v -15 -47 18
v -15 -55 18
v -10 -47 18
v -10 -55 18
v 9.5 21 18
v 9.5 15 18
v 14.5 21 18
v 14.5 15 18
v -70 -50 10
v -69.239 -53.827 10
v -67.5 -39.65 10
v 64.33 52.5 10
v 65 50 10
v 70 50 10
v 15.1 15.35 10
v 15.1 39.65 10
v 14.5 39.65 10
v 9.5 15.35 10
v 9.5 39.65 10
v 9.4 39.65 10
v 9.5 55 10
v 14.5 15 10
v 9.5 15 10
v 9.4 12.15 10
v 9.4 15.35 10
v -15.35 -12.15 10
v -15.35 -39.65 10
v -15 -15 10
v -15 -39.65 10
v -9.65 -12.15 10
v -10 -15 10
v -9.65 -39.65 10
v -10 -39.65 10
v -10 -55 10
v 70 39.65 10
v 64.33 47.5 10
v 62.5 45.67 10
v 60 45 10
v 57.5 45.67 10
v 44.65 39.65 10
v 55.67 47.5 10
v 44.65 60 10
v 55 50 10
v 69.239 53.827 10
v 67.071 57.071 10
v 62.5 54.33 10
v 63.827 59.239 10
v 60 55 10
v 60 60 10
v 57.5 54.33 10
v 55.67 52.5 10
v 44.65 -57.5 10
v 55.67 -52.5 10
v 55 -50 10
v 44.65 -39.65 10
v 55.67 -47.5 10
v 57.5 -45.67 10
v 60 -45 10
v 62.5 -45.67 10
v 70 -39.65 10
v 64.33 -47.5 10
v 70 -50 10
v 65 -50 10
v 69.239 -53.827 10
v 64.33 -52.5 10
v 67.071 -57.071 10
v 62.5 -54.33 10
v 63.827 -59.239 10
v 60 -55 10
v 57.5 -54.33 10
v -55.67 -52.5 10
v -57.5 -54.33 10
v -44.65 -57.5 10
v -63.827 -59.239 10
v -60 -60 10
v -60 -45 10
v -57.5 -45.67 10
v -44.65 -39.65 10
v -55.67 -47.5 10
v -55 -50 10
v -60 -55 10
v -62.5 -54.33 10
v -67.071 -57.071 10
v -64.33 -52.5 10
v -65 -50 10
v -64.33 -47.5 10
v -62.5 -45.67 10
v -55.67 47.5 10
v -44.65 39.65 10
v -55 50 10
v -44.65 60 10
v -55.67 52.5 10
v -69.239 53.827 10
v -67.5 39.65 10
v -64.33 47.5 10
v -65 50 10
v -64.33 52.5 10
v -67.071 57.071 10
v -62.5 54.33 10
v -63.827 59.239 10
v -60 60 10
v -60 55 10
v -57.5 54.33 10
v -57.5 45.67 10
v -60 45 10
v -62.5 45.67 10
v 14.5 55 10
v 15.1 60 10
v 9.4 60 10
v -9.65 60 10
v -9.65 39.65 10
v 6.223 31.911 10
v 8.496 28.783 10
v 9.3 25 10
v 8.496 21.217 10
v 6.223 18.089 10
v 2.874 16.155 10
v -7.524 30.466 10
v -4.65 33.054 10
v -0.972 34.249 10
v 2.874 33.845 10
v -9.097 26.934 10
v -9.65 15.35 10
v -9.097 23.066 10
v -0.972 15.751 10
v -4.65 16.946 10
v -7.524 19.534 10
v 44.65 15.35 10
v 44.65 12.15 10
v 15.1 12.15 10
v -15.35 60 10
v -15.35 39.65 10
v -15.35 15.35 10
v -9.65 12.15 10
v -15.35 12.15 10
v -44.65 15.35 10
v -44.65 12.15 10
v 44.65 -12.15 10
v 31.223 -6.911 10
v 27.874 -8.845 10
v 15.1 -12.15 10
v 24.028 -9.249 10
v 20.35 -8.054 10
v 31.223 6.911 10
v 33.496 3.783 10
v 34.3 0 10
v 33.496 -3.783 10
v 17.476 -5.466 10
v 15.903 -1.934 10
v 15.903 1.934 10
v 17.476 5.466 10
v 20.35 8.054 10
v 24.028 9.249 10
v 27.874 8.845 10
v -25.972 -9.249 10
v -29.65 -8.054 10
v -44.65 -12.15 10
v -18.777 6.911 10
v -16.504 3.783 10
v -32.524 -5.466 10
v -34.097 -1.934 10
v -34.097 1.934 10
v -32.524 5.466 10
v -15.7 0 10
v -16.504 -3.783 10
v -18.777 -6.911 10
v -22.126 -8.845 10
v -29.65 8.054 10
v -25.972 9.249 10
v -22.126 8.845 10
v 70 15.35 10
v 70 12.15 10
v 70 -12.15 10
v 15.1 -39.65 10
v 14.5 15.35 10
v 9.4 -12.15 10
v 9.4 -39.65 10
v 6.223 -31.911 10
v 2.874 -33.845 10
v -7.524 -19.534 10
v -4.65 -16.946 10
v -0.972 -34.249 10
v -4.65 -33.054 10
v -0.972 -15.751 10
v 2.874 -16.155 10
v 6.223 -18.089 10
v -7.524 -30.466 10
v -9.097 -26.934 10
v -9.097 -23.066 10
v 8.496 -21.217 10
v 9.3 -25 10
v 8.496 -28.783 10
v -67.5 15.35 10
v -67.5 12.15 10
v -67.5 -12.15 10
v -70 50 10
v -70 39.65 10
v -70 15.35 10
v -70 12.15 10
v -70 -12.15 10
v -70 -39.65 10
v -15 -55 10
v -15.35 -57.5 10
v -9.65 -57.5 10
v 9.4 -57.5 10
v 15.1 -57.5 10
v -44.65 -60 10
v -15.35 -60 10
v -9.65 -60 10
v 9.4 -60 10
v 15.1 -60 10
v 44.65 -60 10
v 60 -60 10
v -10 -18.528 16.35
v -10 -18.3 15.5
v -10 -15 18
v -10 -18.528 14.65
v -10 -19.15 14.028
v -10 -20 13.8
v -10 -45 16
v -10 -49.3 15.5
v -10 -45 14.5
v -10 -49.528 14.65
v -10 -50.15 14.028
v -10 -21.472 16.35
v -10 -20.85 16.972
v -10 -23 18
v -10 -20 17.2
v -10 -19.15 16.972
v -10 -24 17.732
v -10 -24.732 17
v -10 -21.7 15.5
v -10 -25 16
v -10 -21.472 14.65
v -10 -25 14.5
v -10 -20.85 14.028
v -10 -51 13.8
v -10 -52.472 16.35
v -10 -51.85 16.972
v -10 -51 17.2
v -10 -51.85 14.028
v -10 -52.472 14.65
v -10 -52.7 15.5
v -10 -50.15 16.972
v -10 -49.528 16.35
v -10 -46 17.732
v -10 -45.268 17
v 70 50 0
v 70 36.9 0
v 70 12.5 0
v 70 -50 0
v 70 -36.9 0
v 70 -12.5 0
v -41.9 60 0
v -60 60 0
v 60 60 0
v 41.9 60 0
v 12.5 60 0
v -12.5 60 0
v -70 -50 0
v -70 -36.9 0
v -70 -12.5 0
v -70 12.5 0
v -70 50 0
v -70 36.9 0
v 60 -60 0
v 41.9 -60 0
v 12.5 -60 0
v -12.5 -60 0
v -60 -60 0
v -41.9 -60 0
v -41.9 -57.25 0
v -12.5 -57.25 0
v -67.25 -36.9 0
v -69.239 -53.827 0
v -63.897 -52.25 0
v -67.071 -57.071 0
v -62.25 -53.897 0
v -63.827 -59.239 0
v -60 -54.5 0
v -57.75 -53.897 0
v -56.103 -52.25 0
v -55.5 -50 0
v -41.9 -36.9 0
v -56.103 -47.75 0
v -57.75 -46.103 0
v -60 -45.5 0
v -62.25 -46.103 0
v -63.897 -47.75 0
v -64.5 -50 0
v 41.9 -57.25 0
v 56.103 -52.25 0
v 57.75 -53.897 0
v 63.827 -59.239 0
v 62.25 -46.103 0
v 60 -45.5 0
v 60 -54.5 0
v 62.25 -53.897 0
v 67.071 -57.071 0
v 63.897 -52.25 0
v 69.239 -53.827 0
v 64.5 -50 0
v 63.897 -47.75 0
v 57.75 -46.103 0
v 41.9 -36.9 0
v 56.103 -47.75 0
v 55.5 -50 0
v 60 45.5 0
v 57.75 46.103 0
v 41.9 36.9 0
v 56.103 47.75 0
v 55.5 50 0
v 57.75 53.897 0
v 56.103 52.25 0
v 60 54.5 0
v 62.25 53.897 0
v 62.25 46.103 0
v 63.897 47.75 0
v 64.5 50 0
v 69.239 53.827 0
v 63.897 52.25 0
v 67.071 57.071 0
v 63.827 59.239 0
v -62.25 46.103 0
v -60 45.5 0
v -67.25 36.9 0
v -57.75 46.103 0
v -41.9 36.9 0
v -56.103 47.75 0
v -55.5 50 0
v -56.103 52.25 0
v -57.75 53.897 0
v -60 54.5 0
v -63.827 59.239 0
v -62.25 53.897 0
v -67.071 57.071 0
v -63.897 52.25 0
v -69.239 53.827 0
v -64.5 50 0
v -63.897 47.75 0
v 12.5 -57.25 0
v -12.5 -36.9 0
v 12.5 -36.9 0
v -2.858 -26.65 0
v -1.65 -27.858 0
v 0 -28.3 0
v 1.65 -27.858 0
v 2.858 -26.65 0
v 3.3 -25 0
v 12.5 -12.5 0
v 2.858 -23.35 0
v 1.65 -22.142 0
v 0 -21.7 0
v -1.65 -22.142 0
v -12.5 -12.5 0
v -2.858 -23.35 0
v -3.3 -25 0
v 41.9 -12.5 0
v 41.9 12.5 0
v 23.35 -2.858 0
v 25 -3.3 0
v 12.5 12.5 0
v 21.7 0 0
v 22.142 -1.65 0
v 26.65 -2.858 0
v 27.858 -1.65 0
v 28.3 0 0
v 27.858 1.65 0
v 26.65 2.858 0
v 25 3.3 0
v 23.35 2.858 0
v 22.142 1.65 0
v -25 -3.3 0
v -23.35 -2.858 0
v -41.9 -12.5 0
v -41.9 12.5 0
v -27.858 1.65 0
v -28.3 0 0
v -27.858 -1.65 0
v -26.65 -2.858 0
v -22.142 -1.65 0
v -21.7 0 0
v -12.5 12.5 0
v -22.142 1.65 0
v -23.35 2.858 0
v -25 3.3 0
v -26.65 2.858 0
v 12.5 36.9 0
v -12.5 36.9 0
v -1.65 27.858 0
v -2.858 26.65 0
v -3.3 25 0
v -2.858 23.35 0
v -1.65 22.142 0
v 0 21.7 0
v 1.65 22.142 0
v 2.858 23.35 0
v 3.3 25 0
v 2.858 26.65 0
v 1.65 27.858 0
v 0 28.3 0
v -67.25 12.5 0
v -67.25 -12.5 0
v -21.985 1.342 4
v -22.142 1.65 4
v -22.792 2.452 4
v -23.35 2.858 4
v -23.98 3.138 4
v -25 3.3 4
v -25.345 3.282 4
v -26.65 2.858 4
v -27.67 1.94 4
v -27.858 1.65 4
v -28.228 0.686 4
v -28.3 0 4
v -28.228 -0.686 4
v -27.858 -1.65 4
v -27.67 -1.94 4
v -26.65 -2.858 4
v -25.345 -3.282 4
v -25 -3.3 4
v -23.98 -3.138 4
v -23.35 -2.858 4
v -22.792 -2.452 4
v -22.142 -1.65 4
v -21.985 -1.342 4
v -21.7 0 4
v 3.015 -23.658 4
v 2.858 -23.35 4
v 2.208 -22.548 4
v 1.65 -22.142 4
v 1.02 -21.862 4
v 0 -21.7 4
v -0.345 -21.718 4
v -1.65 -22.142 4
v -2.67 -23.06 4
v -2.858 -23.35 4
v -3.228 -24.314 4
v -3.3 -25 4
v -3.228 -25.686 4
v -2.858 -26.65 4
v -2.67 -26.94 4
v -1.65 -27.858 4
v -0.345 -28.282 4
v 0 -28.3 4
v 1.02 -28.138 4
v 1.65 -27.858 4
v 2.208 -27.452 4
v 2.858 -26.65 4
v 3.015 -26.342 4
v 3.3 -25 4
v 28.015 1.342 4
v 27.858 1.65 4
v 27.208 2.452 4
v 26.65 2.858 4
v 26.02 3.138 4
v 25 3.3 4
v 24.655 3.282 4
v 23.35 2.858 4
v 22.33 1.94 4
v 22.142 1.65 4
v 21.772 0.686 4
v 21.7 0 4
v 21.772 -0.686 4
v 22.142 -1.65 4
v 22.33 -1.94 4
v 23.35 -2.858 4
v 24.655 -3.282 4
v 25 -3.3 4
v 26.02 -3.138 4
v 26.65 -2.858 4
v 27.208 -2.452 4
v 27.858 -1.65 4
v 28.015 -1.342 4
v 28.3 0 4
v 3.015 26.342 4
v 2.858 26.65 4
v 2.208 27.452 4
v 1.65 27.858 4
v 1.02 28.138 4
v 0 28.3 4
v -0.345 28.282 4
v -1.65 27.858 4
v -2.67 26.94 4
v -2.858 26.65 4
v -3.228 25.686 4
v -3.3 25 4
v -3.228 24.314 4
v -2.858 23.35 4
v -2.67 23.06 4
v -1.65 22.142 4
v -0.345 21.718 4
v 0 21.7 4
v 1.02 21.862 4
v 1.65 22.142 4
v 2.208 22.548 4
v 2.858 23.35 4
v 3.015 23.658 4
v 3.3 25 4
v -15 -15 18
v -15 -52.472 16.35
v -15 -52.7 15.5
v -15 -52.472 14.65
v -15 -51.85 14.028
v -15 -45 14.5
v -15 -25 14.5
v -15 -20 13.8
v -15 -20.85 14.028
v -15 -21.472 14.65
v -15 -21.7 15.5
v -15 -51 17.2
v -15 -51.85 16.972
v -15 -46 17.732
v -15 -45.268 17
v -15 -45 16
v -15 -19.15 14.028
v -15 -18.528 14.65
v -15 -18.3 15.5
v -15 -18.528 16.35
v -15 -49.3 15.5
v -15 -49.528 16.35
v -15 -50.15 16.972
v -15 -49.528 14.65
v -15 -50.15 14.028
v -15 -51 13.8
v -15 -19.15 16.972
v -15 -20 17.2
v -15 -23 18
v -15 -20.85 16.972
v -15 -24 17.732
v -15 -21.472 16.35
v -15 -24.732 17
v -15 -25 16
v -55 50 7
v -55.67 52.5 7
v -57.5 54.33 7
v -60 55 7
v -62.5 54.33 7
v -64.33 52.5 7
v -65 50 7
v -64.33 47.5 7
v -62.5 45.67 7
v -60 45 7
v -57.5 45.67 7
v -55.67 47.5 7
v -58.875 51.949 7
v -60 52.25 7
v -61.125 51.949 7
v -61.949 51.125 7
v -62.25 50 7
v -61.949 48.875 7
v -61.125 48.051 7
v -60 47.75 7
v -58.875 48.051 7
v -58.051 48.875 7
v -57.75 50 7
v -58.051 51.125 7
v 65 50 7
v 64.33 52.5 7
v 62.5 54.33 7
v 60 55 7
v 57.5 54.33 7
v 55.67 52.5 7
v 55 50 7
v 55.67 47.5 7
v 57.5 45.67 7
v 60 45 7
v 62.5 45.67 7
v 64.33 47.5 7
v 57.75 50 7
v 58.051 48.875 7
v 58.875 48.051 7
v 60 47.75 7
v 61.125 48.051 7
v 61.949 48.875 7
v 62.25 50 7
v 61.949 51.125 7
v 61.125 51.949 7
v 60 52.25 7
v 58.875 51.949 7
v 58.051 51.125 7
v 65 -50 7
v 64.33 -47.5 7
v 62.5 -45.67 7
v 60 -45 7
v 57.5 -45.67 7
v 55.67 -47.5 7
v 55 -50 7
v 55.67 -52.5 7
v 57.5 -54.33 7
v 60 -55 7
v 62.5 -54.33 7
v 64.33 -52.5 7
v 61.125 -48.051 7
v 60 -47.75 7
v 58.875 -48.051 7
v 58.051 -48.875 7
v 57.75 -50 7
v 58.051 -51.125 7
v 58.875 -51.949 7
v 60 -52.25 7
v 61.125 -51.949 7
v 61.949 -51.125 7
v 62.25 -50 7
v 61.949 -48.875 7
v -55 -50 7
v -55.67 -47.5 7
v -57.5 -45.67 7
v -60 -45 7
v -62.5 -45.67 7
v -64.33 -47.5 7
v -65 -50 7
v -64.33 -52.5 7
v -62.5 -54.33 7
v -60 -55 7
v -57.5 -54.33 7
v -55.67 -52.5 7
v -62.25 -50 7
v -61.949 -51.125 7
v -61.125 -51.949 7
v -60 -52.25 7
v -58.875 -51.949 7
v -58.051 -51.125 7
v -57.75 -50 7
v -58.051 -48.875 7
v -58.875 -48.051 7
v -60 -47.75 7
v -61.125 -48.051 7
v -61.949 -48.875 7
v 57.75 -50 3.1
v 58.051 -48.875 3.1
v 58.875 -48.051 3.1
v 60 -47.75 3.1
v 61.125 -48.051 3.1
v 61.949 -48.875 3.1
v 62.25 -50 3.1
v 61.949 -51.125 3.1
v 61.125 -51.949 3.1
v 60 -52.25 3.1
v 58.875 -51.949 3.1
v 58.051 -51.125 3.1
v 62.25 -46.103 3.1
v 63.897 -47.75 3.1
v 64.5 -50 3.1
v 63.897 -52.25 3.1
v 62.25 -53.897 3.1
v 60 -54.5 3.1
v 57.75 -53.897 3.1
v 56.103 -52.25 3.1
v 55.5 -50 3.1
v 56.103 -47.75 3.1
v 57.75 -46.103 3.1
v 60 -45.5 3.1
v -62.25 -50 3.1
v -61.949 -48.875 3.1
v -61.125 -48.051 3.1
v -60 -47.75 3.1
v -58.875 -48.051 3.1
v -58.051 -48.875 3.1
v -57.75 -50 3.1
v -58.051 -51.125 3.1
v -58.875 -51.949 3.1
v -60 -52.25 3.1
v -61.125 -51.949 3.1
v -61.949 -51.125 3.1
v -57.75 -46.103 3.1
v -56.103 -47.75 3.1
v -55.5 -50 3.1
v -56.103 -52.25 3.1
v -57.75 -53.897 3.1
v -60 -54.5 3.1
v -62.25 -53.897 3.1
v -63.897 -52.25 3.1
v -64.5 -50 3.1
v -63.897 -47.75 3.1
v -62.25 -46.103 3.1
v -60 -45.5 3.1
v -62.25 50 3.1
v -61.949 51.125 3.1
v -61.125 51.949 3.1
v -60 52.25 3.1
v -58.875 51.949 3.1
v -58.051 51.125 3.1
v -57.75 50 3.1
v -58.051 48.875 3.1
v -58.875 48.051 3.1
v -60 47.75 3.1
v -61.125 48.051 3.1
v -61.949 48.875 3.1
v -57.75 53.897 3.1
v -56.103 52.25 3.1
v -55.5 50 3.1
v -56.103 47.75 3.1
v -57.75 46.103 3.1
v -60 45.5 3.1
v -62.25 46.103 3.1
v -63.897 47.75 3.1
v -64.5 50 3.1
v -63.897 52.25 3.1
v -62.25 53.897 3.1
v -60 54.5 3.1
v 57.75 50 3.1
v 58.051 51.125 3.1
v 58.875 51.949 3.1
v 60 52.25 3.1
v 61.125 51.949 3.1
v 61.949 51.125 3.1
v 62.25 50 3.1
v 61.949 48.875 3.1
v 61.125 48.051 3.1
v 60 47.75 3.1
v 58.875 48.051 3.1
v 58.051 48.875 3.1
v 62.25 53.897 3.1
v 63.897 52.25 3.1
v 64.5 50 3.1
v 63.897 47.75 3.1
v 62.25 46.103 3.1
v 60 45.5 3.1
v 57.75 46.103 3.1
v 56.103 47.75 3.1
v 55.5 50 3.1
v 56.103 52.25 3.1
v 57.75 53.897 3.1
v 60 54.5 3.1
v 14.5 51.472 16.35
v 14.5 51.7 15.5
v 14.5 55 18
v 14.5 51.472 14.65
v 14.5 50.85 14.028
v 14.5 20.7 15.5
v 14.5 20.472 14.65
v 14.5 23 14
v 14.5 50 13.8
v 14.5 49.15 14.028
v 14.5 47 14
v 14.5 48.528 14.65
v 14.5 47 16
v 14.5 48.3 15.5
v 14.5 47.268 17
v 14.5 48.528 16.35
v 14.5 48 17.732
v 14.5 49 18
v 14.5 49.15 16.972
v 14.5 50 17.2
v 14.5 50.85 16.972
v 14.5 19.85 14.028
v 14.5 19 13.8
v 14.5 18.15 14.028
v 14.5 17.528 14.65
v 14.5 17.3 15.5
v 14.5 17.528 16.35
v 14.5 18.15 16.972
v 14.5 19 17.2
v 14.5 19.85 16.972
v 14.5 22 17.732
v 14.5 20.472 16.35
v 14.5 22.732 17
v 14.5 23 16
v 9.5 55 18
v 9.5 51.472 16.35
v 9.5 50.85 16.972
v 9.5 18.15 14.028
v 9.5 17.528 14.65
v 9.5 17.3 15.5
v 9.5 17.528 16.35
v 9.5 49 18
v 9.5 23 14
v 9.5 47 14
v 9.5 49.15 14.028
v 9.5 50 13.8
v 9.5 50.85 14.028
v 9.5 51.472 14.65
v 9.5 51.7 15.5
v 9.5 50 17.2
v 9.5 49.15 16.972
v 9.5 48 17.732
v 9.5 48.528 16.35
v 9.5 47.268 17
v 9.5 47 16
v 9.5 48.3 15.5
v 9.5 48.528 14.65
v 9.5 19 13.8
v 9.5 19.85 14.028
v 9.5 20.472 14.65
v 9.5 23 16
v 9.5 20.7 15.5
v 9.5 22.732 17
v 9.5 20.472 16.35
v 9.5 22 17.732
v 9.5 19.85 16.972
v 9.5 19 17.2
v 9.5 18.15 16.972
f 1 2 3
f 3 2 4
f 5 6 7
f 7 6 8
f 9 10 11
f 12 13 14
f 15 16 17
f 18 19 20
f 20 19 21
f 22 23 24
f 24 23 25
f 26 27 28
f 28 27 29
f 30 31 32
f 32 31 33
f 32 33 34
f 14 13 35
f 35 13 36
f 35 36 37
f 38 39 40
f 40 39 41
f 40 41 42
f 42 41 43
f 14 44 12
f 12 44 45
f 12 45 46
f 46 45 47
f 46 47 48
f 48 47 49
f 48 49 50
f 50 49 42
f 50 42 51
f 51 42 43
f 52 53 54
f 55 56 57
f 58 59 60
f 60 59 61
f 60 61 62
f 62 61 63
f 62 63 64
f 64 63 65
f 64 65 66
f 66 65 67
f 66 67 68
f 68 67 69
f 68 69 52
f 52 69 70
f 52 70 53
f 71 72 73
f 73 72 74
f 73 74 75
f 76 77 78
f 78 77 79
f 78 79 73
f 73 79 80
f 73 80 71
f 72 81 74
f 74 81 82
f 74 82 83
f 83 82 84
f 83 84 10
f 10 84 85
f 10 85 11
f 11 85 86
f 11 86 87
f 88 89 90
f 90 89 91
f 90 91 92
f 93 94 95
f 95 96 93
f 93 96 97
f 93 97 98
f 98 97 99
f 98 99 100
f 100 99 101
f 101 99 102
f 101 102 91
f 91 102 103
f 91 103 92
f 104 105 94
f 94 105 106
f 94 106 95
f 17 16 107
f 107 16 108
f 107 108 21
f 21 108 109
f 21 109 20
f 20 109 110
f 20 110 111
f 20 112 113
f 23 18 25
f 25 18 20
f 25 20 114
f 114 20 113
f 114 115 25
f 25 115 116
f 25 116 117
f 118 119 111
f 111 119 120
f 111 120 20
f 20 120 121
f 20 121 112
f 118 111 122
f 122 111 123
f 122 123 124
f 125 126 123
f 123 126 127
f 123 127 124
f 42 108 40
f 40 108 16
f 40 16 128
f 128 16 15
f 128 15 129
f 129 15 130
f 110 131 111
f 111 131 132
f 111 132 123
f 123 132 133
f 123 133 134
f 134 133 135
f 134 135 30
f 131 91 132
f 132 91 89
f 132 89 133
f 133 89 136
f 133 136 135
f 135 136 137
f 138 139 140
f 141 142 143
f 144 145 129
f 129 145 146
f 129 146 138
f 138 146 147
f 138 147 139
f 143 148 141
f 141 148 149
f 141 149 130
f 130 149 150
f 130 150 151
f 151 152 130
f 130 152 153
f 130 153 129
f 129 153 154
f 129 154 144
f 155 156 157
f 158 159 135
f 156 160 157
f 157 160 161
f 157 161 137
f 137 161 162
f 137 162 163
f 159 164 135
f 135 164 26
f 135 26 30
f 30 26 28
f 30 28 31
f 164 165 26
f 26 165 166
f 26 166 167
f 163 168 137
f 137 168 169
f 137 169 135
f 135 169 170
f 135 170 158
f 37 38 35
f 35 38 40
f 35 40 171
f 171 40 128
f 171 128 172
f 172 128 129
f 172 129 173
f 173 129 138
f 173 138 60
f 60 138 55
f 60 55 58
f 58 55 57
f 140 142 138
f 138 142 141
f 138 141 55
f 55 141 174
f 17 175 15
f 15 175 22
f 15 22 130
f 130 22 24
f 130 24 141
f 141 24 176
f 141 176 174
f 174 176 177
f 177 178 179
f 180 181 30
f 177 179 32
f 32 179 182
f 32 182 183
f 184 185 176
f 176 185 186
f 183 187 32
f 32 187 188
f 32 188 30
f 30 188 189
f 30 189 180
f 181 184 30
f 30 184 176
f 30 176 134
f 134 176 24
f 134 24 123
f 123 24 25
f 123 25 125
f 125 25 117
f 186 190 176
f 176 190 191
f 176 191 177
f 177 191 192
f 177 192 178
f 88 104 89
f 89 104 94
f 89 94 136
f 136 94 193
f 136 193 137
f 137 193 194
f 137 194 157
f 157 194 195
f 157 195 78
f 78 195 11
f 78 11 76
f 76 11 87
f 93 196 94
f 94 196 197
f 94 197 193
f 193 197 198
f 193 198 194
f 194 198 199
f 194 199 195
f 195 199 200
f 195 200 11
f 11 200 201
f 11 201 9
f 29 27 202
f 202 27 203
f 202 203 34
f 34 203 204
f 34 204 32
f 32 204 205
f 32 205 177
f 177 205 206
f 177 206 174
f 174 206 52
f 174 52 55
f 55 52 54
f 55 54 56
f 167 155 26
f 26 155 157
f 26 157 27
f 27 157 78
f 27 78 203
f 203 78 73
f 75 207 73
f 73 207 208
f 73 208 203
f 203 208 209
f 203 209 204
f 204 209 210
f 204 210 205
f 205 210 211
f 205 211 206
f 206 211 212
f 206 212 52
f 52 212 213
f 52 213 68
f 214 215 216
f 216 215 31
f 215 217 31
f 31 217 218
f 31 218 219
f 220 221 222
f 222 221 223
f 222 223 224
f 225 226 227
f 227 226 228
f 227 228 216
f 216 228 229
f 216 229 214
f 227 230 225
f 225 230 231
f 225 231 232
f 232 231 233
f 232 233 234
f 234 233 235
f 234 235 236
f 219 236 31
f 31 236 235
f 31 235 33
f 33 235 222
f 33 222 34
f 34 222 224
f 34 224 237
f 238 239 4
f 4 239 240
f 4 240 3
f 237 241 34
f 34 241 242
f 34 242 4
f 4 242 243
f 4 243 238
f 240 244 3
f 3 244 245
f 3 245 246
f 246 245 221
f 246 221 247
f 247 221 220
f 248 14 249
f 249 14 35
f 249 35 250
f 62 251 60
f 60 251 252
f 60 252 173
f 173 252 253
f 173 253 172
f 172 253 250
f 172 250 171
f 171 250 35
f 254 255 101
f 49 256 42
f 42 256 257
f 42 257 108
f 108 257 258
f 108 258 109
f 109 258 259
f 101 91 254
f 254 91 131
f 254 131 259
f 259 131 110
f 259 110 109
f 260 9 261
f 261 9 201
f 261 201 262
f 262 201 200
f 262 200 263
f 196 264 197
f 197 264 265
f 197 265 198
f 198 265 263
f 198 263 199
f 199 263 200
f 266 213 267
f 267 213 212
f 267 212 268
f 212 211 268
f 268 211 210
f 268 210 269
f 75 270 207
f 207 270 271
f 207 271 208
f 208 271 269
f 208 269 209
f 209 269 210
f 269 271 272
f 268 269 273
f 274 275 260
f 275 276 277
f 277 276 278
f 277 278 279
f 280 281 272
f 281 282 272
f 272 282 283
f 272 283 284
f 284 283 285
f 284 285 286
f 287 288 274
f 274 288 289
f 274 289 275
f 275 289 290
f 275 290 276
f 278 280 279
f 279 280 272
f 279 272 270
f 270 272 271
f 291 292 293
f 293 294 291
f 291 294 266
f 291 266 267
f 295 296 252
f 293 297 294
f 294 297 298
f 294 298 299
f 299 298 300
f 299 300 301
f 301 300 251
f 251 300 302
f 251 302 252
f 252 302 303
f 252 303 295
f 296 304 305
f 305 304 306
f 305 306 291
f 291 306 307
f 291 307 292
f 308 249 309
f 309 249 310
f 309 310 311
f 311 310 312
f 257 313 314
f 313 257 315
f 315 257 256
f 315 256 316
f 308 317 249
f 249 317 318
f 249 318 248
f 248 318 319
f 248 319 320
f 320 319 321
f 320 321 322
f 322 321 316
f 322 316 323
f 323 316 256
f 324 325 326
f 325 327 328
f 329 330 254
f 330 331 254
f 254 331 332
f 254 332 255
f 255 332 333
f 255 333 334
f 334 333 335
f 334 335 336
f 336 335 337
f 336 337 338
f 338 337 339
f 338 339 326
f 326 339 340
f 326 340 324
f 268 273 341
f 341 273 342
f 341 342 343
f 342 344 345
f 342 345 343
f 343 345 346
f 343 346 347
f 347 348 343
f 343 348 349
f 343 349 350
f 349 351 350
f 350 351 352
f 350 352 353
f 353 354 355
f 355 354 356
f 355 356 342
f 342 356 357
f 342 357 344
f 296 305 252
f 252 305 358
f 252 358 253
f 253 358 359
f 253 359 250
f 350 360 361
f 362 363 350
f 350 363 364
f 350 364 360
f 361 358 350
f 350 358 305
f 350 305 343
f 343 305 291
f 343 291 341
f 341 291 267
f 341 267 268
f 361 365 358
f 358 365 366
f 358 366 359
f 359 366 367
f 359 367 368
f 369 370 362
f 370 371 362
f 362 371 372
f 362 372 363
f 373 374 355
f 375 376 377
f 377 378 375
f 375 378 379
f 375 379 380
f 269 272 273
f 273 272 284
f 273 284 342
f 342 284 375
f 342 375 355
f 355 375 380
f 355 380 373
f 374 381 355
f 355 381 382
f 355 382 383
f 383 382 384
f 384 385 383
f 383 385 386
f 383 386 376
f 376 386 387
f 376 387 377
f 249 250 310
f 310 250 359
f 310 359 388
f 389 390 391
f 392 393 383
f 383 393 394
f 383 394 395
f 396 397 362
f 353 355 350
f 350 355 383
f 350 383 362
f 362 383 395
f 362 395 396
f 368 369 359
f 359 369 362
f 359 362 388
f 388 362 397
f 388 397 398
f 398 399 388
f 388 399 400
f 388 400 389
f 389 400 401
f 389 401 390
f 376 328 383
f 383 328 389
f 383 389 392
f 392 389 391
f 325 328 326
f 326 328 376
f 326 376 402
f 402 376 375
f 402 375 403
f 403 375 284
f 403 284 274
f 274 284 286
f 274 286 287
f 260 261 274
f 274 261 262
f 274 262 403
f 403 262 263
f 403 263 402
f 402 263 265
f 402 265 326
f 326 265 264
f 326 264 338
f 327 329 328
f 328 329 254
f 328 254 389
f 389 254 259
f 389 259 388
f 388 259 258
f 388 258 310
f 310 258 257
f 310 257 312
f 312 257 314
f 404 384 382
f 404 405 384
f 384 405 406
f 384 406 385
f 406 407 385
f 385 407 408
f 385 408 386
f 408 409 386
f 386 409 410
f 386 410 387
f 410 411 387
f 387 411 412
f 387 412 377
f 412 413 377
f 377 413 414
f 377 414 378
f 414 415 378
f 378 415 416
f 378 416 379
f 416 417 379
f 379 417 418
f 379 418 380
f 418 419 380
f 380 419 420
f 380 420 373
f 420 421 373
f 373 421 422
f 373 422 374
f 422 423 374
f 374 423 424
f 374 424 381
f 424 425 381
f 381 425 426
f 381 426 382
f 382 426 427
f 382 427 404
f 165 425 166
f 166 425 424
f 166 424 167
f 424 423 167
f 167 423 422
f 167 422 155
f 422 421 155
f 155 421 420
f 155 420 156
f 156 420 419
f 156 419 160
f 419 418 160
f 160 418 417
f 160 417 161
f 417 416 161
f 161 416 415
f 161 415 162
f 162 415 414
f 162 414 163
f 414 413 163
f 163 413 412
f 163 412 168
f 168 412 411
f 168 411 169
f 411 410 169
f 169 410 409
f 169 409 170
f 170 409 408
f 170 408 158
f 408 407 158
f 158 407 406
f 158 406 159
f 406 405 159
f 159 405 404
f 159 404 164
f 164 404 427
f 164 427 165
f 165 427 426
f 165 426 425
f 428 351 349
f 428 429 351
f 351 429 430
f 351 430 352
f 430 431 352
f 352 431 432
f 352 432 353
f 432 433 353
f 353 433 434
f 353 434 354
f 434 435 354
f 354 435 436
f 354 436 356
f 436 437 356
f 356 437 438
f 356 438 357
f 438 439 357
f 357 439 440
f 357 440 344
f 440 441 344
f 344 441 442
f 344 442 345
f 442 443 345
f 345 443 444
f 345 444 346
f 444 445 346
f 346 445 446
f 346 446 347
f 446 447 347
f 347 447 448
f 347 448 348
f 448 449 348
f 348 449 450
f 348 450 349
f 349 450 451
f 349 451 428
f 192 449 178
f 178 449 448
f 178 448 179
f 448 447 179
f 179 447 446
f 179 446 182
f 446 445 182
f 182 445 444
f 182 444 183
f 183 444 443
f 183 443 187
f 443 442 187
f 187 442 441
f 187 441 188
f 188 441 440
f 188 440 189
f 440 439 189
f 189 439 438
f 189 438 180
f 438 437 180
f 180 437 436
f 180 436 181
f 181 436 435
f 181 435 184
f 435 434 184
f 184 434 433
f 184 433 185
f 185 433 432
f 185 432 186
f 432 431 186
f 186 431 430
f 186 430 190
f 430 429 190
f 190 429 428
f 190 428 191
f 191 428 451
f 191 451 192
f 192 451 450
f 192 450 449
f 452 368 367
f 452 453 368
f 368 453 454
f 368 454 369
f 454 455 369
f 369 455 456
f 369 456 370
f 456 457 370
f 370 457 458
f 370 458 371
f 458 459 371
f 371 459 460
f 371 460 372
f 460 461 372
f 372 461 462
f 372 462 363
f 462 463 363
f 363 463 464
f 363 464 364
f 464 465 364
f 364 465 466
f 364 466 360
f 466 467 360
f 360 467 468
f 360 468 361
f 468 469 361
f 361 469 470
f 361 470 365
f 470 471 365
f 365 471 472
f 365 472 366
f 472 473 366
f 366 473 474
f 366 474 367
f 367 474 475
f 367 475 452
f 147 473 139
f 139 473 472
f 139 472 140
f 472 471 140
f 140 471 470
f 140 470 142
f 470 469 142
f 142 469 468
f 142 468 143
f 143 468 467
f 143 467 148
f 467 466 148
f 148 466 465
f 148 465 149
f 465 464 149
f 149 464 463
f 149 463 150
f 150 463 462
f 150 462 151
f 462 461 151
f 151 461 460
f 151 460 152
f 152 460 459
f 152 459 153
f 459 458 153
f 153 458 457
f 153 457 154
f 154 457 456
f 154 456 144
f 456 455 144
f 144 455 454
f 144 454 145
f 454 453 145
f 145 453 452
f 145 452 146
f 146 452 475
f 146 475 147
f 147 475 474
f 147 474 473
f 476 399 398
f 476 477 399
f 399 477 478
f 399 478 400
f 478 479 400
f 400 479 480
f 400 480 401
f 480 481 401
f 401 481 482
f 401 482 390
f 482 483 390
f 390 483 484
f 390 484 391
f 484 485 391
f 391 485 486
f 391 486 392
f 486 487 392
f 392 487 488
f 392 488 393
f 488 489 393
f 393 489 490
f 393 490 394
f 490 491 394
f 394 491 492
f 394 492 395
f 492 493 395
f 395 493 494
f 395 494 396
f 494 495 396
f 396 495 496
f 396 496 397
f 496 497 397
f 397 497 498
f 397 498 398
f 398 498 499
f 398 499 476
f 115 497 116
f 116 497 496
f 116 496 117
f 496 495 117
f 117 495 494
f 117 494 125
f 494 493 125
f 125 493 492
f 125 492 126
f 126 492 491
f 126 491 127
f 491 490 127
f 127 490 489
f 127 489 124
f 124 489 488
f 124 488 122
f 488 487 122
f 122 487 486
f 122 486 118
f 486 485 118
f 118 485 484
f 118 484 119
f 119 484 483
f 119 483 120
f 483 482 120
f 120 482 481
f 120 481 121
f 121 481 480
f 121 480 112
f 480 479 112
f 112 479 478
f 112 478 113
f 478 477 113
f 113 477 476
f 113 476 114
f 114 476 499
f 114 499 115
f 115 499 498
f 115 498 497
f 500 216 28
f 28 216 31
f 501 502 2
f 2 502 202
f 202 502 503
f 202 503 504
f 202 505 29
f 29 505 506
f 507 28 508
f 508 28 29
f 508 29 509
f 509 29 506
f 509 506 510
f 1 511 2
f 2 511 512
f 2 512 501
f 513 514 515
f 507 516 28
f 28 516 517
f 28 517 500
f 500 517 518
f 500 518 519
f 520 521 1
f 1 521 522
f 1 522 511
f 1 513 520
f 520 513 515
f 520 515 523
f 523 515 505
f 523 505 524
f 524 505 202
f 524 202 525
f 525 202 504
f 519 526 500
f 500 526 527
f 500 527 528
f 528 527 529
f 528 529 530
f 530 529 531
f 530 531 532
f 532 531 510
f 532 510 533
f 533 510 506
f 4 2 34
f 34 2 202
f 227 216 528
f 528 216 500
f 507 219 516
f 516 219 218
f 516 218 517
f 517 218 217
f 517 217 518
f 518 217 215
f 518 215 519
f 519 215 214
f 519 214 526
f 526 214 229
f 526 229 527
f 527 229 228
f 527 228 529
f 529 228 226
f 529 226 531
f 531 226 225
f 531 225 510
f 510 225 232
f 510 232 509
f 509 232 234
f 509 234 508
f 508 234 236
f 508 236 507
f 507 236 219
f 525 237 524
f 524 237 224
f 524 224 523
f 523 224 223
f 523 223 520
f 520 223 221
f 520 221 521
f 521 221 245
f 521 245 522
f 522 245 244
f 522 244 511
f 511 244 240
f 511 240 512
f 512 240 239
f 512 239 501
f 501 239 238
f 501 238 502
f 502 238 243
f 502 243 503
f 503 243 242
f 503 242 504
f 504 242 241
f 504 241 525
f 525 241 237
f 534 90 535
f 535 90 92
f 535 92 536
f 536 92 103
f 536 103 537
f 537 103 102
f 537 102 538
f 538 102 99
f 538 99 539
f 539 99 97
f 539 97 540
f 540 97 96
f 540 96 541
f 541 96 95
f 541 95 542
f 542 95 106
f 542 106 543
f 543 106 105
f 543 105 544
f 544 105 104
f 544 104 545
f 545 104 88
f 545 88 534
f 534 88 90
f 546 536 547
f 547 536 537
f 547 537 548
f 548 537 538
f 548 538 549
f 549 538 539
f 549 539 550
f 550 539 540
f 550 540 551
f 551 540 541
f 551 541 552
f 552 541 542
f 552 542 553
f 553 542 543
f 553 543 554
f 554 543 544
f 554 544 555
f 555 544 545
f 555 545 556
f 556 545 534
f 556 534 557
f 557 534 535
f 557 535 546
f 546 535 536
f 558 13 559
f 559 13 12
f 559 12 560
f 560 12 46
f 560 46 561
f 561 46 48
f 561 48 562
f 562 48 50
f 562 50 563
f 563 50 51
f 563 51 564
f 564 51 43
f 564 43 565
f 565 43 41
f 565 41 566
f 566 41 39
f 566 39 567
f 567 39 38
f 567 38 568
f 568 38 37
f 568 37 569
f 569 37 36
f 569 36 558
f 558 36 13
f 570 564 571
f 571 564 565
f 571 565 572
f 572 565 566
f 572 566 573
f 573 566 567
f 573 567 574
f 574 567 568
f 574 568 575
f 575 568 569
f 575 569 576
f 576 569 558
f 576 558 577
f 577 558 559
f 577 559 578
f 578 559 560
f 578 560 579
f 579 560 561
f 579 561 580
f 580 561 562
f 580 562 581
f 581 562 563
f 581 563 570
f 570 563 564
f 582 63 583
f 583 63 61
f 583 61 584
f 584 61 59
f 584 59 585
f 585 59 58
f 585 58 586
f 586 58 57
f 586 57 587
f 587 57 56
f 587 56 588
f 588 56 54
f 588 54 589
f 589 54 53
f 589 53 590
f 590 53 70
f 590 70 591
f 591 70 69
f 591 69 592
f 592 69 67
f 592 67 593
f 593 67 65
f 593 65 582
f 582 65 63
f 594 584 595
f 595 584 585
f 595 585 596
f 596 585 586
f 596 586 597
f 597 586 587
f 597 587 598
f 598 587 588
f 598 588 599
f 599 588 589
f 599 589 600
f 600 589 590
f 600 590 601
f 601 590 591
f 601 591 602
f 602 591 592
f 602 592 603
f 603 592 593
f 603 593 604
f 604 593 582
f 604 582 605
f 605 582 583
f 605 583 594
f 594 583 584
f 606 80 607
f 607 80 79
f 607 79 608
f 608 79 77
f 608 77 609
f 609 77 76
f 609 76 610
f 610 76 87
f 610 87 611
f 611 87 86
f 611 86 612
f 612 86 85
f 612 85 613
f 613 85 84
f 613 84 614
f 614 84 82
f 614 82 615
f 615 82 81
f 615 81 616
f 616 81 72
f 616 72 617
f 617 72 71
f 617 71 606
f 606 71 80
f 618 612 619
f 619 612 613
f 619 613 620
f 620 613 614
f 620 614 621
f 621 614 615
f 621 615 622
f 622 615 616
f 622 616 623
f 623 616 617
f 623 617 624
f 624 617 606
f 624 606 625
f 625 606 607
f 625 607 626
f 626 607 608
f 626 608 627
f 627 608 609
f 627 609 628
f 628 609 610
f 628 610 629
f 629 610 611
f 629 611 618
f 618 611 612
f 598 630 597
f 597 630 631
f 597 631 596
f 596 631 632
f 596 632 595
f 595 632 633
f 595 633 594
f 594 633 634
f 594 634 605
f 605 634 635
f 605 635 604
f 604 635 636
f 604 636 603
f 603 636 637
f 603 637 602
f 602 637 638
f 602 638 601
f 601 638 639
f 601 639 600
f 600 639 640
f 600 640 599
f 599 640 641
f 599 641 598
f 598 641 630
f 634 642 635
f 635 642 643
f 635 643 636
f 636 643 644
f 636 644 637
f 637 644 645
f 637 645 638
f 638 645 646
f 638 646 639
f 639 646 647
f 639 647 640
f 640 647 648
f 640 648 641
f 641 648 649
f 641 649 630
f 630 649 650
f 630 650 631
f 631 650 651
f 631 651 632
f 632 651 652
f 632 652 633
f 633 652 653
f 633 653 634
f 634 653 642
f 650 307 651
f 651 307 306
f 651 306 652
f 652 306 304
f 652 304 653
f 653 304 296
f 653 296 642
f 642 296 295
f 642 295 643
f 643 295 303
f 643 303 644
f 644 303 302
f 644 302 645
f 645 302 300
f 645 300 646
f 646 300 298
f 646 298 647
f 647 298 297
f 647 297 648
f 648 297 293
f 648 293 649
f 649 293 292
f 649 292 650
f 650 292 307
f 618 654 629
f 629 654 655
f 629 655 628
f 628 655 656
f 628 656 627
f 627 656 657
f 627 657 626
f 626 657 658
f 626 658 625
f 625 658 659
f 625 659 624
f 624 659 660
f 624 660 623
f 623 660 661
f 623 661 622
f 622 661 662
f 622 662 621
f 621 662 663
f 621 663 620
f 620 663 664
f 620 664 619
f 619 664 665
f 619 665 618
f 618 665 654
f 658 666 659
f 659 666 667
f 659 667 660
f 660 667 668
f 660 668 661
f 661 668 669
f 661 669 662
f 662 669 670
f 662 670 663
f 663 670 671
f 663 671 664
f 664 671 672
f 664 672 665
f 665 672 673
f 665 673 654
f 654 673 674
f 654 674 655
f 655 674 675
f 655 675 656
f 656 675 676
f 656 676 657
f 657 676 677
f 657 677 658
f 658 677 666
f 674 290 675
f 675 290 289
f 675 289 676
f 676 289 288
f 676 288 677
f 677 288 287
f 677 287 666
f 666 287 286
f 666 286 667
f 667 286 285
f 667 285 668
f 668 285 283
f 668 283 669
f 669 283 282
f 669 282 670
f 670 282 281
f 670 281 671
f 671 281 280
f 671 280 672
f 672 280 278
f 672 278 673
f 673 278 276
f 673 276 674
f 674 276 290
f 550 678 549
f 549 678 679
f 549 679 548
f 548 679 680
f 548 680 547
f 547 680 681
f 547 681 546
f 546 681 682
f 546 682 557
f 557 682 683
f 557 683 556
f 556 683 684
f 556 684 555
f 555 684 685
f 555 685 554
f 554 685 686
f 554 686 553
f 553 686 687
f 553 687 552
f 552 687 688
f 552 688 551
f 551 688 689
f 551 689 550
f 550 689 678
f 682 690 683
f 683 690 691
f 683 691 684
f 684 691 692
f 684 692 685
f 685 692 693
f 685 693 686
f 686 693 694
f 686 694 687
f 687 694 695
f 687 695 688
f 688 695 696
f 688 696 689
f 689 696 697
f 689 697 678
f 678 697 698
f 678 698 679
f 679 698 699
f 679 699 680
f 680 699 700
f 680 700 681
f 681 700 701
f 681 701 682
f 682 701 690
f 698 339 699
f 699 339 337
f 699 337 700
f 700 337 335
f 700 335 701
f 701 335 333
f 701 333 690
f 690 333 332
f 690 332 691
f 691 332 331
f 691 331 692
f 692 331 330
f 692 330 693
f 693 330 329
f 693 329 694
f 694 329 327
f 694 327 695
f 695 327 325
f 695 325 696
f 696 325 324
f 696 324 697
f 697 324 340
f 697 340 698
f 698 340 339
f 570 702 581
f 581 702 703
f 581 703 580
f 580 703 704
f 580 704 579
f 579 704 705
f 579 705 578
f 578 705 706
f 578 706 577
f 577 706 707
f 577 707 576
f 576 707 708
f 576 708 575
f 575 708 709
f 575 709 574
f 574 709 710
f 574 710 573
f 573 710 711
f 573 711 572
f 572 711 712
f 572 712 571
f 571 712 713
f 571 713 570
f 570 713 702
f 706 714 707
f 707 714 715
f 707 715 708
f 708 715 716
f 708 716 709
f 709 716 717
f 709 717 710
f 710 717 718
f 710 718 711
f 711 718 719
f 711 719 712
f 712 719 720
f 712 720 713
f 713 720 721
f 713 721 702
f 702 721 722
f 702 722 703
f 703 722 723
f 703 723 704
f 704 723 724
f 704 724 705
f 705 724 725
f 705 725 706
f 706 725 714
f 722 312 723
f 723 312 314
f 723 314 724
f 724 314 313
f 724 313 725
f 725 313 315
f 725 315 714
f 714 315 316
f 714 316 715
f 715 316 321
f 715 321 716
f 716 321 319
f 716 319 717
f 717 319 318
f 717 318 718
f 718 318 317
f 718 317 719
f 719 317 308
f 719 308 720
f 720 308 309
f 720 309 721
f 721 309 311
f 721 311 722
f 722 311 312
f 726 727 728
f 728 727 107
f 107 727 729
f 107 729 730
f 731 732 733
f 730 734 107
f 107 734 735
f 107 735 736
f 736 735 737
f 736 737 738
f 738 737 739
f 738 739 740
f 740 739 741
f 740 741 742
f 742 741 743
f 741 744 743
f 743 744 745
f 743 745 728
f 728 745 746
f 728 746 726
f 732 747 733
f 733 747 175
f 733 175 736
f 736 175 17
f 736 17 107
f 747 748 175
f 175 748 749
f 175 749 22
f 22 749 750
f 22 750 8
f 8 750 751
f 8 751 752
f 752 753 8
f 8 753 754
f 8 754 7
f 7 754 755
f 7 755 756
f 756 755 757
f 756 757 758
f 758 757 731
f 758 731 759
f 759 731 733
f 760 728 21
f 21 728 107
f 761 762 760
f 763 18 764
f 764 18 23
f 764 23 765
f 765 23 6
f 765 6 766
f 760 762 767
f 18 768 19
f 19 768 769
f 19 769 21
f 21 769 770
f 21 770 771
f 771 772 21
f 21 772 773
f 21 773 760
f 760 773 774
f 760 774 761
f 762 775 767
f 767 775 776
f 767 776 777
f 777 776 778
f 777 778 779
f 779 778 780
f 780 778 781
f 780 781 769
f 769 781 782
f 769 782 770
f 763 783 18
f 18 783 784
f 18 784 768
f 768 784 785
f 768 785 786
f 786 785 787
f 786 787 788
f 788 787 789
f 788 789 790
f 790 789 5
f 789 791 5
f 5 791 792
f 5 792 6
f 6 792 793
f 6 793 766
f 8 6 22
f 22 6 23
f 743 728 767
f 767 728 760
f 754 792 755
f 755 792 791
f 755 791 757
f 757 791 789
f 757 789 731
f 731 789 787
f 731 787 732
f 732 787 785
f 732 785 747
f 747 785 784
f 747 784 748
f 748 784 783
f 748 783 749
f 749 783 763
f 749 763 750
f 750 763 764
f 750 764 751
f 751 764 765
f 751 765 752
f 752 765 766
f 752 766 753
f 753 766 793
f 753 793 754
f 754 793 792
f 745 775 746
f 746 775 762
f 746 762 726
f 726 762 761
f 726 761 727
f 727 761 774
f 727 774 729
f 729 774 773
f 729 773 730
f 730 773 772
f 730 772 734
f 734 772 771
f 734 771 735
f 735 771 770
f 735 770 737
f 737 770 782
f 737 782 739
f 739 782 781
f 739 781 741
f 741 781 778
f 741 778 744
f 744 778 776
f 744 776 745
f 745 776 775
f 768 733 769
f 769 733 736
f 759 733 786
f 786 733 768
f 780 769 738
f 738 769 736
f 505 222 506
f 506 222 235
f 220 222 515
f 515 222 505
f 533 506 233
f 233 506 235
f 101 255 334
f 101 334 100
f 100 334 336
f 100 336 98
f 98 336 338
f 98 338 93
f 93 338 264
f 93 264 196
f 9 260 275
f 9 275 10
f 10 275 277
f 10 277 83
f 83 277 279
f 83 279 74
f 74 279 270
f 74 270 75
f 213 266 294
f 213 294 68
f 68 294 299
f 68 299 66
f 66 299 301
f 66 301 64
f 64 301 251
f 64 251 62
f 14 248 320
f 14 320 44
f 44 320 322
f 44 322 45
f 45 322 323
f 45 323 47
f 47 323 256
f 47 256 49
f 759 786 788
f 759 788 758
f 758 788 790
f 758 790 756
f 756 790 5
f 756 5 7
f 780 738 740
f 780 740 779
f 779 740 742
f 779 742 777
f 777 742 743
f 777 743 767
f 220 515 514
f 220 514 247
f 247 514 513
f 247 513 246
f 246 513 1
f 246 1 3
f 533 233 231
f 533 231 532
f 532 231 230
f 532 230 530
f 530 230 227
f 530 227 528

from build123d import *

# Parameters (mm, degrees)
SKETCH_1_W                   = 140
SKETCH_1_H                   = 120
EXTRUDE_1_DEPTH              = 10
HOLE_WIZARD_M6_1_D           = 6.6
HOLE_WIZARD_M6_1_CSINK_D     = 18.6
HOLE_WIZARD_M6_1_CSINK_ANGLE = 90
SKETCH_4_W                   = 5
SKETCH_4_H                   = 40
EXTRUDE_2_DEPTH              = 8
HOLE_WIZARD_M3_2_D           = 3.4
HOLE_WIZARD_M3_2_DEPTH       = 5
SKETCH_13_R                  = 5
CUT_EXTRUDE_5_DEPTH          = 3
HOLE_WIZARD_M4_1_D           = 4.5
HOLE_WIZARD_M4_1_CBORE_D     = 9
HOLE_WIZARD_M4_1_CBORE_DEPTH = 3.1
SKETCH_21_W                  = 5
SKETCH_21_H                  = 40
EXTRUDE_4_DEPTH              = 8
HOLE_WIZARD_M3_4_D           = 3.4
SKETCH_24_W                  = 3.5
SKETCH_24_H                  = 20
SKETCH_24_W_2                = 4
SKETCH_24_H_2                = 24
CUT_EXTRUDE_6_DEPTH          = 81
CUT_EXTRUDE_6_DEPTH_BACK     = 61
FILLET_1_R                   = 10
FILLET_2_R                   = 2


with BuildPart() as part:
    # 스케치1 → 보스-돌출1 (new body)
    with BuildSketch(Plane.XY):
        Rectangle(SKETCH_1_W, SKETCH_1_H)
    extrude(amount=EXTRUDE_1_DEPTH)

    # M6 접시 머리 나사용 카운터싱크1 (through all)
    with Locations(Plane.XY.offset(10)):
        with Locations((0, 25), (25, 0), (0, -25), (-25, 0)):
            CounterSinkHole(HOLE_WIZARD_M6_1_D / 2, HOLE_WIZARD_M6_1_CSINK_D / 2, counter_sink_angle=HOLE_WIZARD_M6_1_CSINK_ANGLE)

    # 스케치4 → 보스-돌출2 (add)
    with BuildSketch(Plane.XY.offset(10)):
        with Locations((-12.5, -35)):
            Rectangle(SKETCH_4_W, SKETCH_4_H)
    extrude(amount=EXTRUDE_2_DEPTH)

    # M3 여유 구멍2
    with Locations(Plane(origin=(-10, 0, 0), x_dir=(0, 0, -1), z_dir=(1, 0, 0))):
        with Locations((-15.5, -51), (-15.5, -20)):
            Hole(HOLE_WIZARD_M3_2_D / 2, depth=HOLE_WIZARD_M3_2_DEPTH)

    # 스케치13 → 컷-돌출5 (cut)
    with BuildSketch(Plane.XY.offset(10)):
        with Locations((-60, 50)):
            Circle(SKETCH_13_R)
        with Locations((60, 50)):
            Circle(SKETCH_13_R)
        with Locations((60, -50)):
            Circle(SKETCH_13_R)
        with Locations((-60, -50)):
            Circle(SKETCH_13_R)
    extrude(amount=-CUT_EXTRUDE_5_DEPTH, mode=Mode.SUBTRACT)

    # M4 남비 머리 나사용 카운터보어1 (through all)
    with Locations(Plane(origin=(0, 0, 0), x_dir=(-1, 0, 0), z_dir=(0, 0, -1))):
        with Locations((-60, 50), (60, 50), (60, -50), (-60, -50)):
            CounterBoreHole(HOLE_WIZARD_M4_1_D / 2, HOLE_WIZARD_M4_1_CBORE_D / 2, HOLE_WIZARD_M4_1_CBORE_DEPTH)

    # 스케치21 → 보스-돌출4 (add)
    with BuildSketch(Plane.XY.offset(10)):
        with Locations((12, 35)):
            Rectangle(SKETCH_21_W, SKETCH_21_H)
    extrude(amount=EXTRUDE_4_DEPTH)

    # M3 여유 구멍4 (through all)
    with Locations(Plane.ZY.offset(-9.5)):
        with Locations((15.5, 50), (15.5, 19)):
            Hole(HOLE_WIZARD_M3_4_D / 2)

    # 스케치24 → 컷-돌출6 (cut, two sides)
    with BuildSketch(Plane(origin=(-10, 0, 0), x_dir=(0, 0, -1), z_dir=(1, 0, 0))) as cut_extrude_6_sk:
        with Locations((-16.25, -35)):
            Rectangle(SKETCH_24_W, SKETCH_24_H)
        with Locations((-16, 35)):
            Rectangle(SKETCH_24_W_2, SKETCH_24_H_2)
    extrude(amount=CUT_EXTRUDE_6_DEPTH, mode=Mode.SUBTRACT)
    extrude(cut_extrude_6_sk.sketch, amount=-CUT_EXTRUDE_6_DEPTH_BACK, mode=Mode.SUBTRACT)

    # 필렛1
    fillet_1_edges = [part.edges().sort_by_distance(p)[0] for p in [
        (70, -60, 5),
        (-70, -60, 5),
        (-70, 60, 5),
        (70, 60, 5),
    ]]
    fillet(fillet_1_edges, radius=FILLET_1_R)

    # 필렛2
    fillet_2_edges = [part.edges().sort_by_distance(p)[0] for p in [
        (12, 47, 18),
        (12, 23, 18),
        (-12.5, -25, 18),
        (-12.5, -45, 18),
    ]]
    fillet(fillet_2_edges, radius=FILLET_2_R)


solid = part.part
